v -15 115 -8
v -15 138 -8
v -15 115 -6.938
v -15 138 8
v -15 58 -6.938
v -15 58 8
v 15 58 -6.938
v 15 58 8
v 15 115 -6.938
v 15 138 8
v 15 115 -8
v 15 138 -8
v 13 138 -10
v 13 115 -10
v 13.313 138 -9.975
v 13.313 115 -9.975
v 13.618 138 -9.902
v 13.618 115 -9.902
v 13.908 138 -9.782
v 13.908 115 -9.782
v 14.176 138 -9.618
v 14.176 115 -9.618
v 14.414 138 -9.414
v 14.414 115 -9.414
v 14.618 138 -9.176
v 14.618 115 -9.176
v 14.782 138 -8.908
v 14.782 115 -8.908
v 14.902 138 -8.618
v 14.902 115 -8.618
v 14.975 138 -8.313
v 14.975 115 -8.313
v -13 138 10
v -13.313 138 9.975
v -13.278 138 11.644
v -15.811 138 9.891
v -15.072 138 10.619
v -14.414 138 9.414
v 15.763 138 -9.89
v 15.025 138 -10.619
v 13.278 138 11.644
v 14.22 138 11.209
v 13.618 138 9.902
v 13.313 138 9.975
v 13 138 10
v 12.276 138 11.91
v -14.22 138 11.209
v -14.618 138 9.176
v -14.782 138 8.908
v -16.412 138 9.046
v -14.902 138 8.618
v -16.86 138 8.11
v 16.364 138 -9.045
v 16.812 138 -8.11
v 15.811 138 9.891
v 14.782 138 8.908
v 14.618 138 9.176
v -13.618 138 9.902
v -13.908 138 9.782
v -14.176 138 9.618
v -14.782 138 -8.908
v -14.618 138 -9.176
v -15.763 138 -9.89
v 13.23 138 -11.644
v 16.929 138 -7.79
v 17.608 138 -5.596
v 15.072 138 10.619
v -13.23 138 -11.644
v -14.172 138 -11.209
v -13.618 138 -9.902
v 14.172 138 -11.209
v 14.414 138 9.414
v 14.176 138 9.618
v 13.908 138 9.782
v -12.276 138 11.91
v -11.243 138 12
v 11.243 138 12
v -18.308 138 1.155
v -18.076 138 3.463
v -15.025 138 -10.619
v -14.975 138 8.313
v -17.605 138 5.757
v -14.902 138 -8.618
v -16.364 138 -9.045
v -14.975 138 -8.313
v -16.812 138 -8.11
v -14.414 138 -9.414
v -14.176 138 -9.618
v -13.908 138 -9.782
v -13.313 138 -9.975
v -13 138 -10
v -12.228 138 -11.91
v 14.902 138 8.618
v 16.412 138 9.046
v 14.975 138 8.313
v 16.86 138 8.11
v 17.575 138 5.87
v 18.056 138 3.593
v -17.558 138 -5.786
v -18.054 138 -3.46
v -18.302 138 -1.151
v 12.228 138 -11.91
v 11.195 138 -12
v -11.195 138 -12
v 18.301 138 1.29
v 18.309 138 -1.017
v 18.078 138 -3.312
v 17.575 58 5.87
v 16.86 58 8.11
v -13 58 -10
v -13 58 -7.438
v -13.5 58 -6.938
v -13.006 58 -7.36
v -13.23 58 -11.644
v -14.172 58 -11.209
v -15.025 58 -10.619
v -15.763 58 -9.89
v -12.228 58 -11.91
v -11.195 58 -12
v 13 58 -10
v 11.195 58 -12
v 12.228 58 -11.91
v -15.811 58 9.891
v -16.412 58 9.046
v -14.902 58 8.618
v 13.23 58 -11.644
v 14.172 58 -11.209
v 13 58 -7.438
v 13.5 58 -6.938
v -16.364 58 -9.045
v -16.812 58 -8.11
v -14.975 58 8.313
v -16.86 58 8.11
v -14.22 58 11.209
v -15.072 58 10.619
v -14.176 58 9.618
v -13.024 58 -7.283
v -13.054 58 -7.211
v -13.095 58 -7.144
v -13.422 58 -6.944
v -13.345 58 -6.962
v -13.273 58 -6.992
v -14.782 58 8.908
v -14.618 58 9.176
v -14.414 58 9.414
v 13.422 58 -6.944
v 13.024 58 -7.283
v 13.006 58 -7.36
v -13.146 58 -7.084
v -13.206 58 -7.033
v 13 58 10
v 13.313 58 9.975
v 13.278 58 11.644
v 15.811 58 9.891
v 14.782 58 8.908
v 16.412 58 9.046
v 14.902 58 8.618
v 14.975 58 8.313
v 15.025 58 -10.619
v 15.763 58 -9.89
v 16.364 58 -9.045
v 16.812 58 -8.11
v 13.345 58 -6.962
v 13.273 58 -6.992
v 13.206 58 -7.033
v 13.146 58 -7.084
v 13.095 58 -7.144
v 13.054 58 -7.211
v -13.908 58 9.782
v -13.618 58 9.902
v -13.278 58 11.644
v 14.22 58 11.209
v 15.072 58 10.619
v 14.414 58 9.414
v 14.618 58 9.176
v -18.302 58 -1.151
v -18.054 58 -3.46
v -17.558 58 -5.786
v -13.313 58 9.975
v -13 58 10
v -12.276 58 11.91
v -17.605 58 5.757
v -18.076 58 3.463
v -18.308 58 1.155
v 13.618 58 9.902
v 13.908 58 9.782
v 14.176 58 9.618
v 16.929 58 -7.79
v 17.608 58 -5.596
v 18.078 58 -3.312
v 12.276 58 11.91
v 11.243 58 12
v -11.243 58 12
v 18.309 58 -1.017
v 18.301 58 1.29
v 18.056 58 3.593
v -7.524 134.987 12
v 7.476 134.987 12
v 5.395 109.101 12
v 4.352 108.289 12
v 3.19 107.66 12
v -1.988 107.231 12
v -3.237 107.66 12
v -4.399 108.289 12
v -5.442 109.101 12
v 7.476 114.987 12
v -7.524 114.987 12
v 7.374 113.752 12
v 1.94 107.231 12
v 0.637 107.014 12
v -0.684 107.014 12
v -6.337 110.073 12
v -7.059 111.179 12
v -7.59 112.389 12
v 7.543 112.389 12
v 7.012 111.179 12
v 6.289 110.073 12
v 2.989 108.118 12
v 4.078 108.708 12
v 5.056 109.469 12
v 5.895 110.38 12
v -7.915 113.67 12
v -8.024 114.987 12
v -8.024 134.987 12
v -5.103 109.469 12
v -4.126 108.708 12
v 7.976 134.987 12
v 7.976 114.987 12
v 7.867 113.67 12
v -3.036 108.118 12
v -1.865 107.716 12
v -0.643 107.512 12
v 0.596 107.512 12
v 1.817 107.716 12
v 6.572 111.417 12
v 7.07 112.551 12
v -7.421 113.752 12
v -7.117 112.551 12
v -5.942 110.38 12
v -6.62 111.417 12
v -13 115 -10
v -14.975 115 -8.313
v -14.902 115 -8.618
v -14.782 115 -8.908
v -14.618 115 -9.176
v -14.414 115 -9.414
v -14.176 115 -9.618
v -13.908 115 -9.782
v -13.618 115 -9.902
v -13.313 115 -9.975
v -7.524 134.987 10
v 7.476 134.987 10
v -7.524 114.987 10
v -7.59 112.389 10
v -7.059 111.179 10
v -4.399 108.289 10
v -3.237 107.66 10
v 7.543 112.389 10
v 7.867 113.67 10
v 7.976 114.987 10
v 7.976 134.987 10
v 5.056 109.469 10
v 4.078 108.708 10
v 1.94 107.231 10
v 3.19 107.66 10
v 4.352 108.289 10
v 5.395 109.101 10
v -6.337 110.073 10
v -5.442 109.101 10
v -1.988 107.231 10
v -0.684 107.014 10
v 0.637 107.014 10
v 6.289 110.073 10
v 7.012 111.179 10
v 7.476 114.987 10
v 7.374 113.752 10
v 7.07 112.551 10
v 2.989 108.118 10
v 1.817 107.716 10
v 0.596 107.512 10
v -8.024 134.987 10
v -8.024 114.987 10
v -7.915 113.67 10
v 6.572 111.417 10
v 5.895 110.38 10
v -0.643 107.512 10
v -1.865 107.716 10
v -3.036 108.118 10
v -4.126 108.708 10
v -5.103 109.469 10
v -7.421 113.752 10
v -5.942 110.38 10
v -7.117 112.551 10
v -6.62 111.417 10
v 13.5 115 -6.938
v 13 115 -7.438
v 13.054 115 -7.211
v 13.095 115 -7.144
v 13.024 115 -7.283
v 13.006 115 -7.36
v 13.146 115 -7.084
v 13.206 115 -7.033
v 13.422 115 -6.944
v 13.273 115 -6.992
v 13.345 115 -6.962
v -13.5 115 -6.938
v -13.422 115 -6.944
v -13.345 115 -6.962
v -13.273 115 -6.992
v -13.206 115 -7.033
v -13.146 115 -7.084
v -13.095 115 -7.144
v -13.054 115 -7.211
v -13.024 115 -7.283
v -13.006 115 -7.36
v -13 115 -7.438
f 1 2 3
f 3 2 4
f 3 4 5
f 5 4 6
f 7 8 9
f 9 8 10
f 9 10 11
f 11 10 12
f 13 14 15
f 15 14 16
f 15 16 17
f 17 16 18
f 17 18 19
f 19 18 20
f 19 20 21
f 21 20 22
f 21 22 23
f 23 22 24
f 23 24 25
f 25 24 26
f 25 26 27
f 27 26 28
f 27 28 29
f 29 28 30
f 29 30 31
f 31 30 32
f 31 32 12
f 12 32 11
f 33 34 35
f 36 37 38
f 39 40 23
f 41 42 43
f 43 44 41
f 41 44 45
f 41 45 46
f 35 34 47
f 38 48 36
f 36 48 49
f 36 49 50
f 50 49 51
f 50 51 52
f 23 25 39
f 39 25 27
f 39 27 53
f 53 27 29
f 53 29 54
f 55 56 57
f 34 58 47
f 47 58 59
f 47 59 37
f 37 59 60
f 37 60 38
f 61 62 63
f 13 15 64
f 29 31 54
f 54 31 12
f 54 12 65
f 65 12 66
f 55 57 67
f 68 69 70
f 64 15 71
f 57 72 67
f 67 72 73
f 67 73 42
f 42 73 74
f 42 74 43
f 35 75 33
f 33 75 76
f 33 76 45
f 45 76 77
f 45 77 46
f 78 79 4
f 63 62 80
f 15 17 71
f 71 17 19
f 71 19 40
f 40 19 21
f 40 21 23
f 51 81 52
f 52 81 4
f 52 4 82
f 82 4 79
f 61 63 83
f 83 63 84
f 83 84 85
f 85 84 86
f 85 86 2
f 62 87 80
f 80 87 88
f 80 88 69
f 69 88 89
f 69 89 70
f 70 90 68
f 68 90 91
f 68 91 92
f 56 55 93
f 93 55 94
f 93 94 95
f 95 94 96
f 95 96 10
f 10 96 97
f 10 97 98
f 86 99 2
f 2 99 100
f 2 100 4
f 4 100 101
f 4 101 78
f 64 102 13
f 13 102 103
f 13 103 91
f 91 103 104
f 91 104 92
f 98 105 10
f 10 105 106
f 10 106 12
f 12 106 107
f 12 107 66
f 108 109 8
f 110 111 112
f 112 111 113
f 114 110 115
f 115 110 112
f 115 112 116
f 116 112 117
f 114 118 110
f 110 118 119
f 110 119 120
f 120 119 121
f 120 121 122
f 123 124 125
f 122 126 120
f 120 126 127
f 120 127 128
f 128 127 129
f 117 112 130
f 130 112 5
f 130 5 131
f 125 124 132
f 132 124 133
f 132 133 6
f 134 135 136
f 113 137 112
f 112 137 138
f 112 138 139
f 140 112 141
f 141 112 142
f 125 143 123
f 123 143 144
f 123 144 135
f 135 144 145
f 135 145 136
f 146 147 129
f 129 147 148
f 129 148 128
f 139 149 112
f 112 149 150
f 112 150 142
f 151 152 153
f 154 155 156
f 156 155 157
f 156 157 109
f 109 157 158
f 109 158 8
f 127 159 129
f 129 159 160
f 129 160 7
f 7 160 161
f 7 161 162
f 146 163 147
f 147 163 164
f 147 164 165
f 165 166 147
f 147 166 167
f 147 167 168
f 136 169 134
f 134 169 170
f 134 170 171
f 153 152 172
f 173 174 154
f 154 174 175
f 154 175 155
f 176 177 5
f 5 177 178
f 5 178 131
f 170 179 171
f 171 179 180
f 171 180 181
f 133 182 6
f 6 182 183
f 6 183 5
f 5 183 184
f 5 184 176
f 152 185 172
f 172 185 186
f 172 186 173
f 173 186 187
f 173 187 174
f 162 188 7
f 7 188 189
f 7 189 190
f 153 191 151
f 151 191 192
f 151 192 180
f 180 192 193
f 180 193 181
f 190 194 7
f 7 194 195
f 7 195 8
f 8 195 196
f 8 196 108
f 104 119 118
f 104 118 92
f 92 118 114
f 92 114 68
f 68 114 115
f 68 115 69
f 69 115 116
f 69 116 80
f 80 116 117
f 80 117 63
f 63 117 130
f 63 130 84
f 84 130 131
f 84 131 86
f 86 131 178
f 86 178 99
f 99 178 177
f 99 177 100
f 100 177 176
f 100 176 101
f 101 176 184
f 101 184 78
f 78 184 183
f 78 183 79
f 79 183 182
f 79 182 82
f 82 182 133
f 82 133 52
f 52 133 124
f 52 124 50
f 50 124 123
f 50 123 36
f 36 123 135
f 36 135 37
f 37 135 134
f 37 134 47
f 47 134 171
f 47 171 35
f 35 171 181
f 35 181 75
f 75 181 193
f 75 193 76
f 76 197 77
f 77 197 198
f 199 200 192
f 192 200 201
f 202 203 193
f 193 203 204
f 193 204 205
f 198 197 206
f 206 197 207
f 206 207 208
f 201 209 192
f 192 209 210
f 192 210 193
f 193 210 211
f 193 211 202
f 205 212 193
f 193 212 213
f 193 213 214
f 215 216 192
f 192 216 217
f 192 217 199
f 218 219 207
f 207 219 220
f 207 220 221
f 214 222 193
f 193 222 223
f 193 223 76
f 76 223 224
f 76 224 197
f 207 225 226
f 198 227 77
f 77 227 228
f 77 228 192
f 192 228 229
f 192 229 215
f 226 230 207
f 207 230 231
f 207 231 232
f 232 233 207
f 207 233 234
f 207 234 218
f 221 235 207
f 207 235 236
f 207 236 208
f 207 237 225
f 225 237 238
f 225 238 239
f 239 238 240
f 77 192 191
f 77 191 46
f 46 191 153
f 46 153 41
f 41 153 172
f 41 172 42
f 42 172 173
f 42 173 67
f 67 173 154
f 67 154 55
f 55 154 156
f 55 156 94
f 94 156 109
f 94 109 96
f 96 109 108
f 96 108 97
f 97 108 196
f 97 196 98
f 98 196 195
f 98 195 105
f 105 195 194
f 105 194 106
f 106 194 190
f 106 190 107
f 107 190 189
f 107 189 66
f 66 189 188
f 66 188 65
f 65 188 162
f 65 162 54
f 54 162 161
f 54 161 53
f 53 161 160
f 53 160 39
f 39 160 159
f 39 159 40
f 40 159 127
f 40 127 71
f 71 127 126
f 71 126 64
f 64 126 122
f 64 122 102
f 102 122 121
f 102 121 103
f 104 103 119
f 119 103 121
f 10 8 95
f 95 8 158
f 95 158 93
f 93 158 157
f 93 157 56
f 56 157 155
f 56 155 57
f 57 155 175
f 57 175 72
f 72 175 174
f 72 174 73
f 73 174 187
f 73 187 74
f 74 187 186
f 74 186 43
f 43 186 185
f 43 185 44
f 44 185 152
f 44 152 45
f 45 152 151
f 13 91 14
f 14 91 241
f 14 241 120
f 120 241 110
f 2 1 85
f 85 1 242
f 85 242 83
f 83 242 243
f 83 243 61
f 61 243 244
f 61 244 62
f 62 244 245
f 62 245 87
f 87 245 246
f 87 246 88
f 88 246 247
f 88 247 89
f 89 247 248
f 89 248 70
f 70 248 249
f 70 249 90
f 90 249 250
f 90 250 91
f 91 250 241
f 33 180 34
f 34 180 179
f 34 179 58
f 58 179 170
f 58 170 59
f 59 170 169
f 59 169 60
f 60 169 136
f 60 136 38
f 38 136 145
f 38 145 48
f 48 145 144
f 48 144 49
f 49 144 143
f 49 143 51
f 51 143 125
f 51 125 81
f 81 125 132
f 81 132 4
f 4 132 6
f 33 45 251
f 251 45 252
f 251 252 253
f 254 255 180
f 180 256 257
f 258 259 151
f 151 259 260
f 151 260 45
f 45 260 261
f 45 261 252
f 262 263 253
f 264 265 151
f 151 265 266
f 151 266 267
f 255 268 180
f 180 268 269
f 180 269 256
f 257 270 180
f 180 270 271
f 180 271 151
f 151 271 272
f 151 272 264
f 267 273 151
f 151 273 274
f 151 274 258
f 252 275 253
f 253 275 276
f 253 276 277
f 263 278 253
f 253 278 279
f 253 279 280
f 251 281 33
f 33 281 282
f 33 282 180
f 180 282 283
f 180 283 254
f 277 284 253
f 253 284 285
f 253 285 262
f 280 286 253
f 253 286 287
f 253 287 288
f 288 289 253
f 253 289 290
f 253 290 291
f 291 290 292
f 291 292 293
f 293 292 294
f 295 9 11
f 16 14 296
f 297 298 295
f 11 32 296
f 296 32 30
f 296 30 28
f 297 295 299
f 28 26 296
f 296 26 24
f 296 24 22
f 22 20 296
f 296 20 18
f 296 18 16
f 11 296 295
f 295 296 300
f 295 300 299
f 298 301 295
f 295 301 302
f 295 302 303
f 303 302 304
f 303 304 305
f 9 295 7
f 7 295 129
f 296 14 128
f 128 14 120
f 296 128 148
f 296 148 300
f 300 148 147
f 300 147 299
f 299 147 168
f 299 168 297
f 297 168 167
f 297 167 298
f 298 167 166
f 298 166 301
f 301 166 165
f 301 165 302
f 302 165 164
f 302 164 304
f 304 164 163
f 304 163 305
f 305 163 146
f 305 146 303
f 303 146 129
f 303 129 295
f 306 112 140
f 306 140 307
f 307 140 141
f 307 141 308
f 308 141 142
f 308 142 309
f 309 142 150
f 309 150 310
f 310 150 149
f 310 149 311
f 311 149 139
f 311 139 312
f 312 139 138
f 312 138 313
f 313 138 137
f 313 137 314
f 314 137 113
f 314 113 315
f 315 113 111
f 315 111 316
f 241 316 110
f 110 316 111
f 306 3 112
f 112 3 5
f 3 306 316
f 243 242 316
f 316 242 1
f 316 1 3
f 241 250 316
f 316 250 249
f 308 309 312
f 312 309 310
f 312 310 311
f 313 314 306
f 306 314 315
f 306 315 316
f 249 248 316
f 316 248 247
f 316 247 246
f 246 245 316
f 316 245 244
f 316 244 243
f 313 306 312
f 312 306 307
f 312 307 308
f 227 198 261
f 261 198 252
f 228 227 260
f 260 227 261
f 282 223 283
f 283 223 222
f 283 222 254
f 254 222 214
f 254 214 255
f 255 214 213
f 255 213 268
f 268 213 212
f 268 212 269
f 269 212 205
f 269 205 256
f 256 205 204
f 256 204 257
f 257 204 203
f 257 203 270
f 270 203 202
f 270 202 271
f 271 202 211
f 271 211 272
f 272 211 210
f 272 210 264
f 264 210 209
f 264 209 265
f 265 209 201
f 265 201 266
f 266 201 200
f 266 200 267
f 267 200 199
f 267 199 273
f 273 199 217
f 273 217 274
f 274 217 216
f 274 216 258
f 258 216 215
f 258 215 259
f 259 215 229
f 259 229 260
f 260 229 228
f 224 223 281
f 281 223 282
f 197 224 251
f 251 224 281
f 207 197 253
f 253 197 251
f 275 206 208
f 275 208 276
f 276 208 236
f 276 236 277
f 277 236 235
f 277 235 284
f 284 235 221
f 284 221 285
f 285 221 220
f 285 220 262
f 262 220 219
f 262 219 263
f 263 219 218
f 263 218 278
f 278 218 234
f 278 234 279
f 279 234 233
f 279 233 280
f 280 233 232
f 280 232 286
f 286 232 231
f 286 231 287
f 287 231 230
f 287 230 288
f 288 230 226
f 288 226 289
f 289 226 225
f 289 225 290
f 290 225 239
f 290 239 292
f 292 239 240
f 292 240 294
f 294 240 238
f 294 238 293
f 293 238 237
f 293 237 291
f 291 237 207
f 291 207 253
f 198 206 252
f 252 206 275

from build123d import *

# Parameters (mm, degrees)
BOSS_EXTRUDE4_DEPTH = 80
BOSS_EXTRUDE5_DEPTH = 57
CUT_EXTRUDE1_DEPTH  = 3


with BuildPart() as part:
    # Sketch8 → Boss-Extrude4 (new body)
    with BuildSketch(Plane(origin=(0, 58, 0), x_dir=(1, 0, 0), z_dir=(0, 1, 0))):
        with BuildLine():
            Line((-11.242998334, -12), (11.242998334, -12))
            ThreePointArc((11.242998334, -12), (14.65898123, -10.932652517), (16.859617211, -8.110353618))
            add(Edge.make_bspline(
                [(16.859617211, -8.110353618), (17.850691543, -5.472650271), (18.834301198, 0.028433299), (17.819526576, 5.426475932), (16.811684839, 8.109721769)],
                knots=[0.167422492, 0.167422492, 0.167422492, 0.167422492, 0.502499344, 0.837905074, 0.837905074, 0.837905074, 0.837905074], degree=3))
            ThreePointArc((16.811684839, 8.109721769), (14.611088933, 10.932460371), (11.194828596, 12))
            Line((11.194828596, 12), (-11.194828596, 12))
            ThreePointArc((-11.194828596, 12), (-14.611088933, 10.932460371), (-16.811684839, 8.109721769))
            add(Edge.make_bspline(
                [(-16.859617211, -8.110353618), (-17.850691543, -5.472650271), (-18.834301198, 0.028433299), (-17.819526576, 5.426475932), (-16.811684839, 8.109721769)],
                knots=[0.167422492, 0.167422492, 0.167422492, 0.167422492, 0.502499344, 0.837905074, 0.837905074, 0.837905074, 0.837905074], degree=3))
            ThreePointArc((-16.859617211, -8.110353618), (-14.65898123, -10.932652517), (-11.242998334, -12))
        make_face()
        with BuildLine():
            Line((-13, -10), (13, -10))
            ThreePointArc((13, -10), (14.414213562, -9.414213562), (15, -8))
            Line((15, -8), (15, 8))
            ThreePointArc((15, 8), (14.414213562, 9.414213562), (13, 10))
            Line((13, 10), (-13, 10))
            ThreePointArc((-13, 10), (-14.414213562, 9.414213562), (-15, 8))
            Line((-15, 8), (-15, -8))
            ThreePointArc((-15, -8), (-14.414213562, -9.414213562), (-13, -10))
        make_face(mode=Mode.SUBTRACT)
    extrude(amount=BOSS_EXTRUDE4_DEPTH)

    # Sketch11 → Boss-Extrude5 (add)
    with BuildSketch(Plane(origin=(0, 58, 0), x_dir=(1, 0, 0), z_dir=(0, 1, 0))):
        with BuildLine():
            Line((13, 10), (15, 10))
            Line((15, 10), (15, 6.937911183))
            Line((15, 6.937911183), (13.5, 6.937911183))
            ThreePointArc((13.5, 6.937911183), (13.146446609, 7.084357793), (13, 7.437911183))
            Line((13, 7.437911183), (13, 10))
        make_face()
        with BuildLine():
            Line((-13, 7.437911183), (-13, 10))
            Line((-13, 10), (-15, 10))
            Line((-15, 10), (-15, 6.937911183))
            Line((-15, 6.937911183), (-13.5, 6.937911183))
            ThreePointArc((-13.5, 6.937911183), (-13.146446609, 7.084357793), (-13, 7.437911183))
        make_face()
    extrude(amount=BOSS_EXTRUDE5_DEPTH)

    # Sketch12 → Cut-Extrude1 (cut)
    with BuildSketch(Plane.XY.offset(12)):
        with BuildLine():
            Line((7.476357736, 134.986611492), (7.476357736, 114.986611492))
            ThreePointArc((7.476357736, 114.986611492), (-0.023642264, 107.486611492), (-7.523642264, 114.986611492))
            Line((-7.523642264, 114.986611492), (-7.523642264, 134.986611492))
            Line((-7.523642264, 134.986611492), (-8.023642264, 134.986611492))
            Line((-8.023642264, 134.986611492), (-8.023642264, 114.986611492))
            ThreePointArc((-8.023642264, 114.986611492), (-0.023642264, 106.986611492), (7.976357736, 114.986611492))
            Line((7.976357736, 114.986611492), (7.976357736, 134.986611492))
            Line((7.976357736, 134.986611492), (7.476357736, 134.986611492))
        make_face()
    extrude(amount=-CUT_EXTRUDE1_DEPTH, mode=Mode.SUBTRACT)


solid = part.part
